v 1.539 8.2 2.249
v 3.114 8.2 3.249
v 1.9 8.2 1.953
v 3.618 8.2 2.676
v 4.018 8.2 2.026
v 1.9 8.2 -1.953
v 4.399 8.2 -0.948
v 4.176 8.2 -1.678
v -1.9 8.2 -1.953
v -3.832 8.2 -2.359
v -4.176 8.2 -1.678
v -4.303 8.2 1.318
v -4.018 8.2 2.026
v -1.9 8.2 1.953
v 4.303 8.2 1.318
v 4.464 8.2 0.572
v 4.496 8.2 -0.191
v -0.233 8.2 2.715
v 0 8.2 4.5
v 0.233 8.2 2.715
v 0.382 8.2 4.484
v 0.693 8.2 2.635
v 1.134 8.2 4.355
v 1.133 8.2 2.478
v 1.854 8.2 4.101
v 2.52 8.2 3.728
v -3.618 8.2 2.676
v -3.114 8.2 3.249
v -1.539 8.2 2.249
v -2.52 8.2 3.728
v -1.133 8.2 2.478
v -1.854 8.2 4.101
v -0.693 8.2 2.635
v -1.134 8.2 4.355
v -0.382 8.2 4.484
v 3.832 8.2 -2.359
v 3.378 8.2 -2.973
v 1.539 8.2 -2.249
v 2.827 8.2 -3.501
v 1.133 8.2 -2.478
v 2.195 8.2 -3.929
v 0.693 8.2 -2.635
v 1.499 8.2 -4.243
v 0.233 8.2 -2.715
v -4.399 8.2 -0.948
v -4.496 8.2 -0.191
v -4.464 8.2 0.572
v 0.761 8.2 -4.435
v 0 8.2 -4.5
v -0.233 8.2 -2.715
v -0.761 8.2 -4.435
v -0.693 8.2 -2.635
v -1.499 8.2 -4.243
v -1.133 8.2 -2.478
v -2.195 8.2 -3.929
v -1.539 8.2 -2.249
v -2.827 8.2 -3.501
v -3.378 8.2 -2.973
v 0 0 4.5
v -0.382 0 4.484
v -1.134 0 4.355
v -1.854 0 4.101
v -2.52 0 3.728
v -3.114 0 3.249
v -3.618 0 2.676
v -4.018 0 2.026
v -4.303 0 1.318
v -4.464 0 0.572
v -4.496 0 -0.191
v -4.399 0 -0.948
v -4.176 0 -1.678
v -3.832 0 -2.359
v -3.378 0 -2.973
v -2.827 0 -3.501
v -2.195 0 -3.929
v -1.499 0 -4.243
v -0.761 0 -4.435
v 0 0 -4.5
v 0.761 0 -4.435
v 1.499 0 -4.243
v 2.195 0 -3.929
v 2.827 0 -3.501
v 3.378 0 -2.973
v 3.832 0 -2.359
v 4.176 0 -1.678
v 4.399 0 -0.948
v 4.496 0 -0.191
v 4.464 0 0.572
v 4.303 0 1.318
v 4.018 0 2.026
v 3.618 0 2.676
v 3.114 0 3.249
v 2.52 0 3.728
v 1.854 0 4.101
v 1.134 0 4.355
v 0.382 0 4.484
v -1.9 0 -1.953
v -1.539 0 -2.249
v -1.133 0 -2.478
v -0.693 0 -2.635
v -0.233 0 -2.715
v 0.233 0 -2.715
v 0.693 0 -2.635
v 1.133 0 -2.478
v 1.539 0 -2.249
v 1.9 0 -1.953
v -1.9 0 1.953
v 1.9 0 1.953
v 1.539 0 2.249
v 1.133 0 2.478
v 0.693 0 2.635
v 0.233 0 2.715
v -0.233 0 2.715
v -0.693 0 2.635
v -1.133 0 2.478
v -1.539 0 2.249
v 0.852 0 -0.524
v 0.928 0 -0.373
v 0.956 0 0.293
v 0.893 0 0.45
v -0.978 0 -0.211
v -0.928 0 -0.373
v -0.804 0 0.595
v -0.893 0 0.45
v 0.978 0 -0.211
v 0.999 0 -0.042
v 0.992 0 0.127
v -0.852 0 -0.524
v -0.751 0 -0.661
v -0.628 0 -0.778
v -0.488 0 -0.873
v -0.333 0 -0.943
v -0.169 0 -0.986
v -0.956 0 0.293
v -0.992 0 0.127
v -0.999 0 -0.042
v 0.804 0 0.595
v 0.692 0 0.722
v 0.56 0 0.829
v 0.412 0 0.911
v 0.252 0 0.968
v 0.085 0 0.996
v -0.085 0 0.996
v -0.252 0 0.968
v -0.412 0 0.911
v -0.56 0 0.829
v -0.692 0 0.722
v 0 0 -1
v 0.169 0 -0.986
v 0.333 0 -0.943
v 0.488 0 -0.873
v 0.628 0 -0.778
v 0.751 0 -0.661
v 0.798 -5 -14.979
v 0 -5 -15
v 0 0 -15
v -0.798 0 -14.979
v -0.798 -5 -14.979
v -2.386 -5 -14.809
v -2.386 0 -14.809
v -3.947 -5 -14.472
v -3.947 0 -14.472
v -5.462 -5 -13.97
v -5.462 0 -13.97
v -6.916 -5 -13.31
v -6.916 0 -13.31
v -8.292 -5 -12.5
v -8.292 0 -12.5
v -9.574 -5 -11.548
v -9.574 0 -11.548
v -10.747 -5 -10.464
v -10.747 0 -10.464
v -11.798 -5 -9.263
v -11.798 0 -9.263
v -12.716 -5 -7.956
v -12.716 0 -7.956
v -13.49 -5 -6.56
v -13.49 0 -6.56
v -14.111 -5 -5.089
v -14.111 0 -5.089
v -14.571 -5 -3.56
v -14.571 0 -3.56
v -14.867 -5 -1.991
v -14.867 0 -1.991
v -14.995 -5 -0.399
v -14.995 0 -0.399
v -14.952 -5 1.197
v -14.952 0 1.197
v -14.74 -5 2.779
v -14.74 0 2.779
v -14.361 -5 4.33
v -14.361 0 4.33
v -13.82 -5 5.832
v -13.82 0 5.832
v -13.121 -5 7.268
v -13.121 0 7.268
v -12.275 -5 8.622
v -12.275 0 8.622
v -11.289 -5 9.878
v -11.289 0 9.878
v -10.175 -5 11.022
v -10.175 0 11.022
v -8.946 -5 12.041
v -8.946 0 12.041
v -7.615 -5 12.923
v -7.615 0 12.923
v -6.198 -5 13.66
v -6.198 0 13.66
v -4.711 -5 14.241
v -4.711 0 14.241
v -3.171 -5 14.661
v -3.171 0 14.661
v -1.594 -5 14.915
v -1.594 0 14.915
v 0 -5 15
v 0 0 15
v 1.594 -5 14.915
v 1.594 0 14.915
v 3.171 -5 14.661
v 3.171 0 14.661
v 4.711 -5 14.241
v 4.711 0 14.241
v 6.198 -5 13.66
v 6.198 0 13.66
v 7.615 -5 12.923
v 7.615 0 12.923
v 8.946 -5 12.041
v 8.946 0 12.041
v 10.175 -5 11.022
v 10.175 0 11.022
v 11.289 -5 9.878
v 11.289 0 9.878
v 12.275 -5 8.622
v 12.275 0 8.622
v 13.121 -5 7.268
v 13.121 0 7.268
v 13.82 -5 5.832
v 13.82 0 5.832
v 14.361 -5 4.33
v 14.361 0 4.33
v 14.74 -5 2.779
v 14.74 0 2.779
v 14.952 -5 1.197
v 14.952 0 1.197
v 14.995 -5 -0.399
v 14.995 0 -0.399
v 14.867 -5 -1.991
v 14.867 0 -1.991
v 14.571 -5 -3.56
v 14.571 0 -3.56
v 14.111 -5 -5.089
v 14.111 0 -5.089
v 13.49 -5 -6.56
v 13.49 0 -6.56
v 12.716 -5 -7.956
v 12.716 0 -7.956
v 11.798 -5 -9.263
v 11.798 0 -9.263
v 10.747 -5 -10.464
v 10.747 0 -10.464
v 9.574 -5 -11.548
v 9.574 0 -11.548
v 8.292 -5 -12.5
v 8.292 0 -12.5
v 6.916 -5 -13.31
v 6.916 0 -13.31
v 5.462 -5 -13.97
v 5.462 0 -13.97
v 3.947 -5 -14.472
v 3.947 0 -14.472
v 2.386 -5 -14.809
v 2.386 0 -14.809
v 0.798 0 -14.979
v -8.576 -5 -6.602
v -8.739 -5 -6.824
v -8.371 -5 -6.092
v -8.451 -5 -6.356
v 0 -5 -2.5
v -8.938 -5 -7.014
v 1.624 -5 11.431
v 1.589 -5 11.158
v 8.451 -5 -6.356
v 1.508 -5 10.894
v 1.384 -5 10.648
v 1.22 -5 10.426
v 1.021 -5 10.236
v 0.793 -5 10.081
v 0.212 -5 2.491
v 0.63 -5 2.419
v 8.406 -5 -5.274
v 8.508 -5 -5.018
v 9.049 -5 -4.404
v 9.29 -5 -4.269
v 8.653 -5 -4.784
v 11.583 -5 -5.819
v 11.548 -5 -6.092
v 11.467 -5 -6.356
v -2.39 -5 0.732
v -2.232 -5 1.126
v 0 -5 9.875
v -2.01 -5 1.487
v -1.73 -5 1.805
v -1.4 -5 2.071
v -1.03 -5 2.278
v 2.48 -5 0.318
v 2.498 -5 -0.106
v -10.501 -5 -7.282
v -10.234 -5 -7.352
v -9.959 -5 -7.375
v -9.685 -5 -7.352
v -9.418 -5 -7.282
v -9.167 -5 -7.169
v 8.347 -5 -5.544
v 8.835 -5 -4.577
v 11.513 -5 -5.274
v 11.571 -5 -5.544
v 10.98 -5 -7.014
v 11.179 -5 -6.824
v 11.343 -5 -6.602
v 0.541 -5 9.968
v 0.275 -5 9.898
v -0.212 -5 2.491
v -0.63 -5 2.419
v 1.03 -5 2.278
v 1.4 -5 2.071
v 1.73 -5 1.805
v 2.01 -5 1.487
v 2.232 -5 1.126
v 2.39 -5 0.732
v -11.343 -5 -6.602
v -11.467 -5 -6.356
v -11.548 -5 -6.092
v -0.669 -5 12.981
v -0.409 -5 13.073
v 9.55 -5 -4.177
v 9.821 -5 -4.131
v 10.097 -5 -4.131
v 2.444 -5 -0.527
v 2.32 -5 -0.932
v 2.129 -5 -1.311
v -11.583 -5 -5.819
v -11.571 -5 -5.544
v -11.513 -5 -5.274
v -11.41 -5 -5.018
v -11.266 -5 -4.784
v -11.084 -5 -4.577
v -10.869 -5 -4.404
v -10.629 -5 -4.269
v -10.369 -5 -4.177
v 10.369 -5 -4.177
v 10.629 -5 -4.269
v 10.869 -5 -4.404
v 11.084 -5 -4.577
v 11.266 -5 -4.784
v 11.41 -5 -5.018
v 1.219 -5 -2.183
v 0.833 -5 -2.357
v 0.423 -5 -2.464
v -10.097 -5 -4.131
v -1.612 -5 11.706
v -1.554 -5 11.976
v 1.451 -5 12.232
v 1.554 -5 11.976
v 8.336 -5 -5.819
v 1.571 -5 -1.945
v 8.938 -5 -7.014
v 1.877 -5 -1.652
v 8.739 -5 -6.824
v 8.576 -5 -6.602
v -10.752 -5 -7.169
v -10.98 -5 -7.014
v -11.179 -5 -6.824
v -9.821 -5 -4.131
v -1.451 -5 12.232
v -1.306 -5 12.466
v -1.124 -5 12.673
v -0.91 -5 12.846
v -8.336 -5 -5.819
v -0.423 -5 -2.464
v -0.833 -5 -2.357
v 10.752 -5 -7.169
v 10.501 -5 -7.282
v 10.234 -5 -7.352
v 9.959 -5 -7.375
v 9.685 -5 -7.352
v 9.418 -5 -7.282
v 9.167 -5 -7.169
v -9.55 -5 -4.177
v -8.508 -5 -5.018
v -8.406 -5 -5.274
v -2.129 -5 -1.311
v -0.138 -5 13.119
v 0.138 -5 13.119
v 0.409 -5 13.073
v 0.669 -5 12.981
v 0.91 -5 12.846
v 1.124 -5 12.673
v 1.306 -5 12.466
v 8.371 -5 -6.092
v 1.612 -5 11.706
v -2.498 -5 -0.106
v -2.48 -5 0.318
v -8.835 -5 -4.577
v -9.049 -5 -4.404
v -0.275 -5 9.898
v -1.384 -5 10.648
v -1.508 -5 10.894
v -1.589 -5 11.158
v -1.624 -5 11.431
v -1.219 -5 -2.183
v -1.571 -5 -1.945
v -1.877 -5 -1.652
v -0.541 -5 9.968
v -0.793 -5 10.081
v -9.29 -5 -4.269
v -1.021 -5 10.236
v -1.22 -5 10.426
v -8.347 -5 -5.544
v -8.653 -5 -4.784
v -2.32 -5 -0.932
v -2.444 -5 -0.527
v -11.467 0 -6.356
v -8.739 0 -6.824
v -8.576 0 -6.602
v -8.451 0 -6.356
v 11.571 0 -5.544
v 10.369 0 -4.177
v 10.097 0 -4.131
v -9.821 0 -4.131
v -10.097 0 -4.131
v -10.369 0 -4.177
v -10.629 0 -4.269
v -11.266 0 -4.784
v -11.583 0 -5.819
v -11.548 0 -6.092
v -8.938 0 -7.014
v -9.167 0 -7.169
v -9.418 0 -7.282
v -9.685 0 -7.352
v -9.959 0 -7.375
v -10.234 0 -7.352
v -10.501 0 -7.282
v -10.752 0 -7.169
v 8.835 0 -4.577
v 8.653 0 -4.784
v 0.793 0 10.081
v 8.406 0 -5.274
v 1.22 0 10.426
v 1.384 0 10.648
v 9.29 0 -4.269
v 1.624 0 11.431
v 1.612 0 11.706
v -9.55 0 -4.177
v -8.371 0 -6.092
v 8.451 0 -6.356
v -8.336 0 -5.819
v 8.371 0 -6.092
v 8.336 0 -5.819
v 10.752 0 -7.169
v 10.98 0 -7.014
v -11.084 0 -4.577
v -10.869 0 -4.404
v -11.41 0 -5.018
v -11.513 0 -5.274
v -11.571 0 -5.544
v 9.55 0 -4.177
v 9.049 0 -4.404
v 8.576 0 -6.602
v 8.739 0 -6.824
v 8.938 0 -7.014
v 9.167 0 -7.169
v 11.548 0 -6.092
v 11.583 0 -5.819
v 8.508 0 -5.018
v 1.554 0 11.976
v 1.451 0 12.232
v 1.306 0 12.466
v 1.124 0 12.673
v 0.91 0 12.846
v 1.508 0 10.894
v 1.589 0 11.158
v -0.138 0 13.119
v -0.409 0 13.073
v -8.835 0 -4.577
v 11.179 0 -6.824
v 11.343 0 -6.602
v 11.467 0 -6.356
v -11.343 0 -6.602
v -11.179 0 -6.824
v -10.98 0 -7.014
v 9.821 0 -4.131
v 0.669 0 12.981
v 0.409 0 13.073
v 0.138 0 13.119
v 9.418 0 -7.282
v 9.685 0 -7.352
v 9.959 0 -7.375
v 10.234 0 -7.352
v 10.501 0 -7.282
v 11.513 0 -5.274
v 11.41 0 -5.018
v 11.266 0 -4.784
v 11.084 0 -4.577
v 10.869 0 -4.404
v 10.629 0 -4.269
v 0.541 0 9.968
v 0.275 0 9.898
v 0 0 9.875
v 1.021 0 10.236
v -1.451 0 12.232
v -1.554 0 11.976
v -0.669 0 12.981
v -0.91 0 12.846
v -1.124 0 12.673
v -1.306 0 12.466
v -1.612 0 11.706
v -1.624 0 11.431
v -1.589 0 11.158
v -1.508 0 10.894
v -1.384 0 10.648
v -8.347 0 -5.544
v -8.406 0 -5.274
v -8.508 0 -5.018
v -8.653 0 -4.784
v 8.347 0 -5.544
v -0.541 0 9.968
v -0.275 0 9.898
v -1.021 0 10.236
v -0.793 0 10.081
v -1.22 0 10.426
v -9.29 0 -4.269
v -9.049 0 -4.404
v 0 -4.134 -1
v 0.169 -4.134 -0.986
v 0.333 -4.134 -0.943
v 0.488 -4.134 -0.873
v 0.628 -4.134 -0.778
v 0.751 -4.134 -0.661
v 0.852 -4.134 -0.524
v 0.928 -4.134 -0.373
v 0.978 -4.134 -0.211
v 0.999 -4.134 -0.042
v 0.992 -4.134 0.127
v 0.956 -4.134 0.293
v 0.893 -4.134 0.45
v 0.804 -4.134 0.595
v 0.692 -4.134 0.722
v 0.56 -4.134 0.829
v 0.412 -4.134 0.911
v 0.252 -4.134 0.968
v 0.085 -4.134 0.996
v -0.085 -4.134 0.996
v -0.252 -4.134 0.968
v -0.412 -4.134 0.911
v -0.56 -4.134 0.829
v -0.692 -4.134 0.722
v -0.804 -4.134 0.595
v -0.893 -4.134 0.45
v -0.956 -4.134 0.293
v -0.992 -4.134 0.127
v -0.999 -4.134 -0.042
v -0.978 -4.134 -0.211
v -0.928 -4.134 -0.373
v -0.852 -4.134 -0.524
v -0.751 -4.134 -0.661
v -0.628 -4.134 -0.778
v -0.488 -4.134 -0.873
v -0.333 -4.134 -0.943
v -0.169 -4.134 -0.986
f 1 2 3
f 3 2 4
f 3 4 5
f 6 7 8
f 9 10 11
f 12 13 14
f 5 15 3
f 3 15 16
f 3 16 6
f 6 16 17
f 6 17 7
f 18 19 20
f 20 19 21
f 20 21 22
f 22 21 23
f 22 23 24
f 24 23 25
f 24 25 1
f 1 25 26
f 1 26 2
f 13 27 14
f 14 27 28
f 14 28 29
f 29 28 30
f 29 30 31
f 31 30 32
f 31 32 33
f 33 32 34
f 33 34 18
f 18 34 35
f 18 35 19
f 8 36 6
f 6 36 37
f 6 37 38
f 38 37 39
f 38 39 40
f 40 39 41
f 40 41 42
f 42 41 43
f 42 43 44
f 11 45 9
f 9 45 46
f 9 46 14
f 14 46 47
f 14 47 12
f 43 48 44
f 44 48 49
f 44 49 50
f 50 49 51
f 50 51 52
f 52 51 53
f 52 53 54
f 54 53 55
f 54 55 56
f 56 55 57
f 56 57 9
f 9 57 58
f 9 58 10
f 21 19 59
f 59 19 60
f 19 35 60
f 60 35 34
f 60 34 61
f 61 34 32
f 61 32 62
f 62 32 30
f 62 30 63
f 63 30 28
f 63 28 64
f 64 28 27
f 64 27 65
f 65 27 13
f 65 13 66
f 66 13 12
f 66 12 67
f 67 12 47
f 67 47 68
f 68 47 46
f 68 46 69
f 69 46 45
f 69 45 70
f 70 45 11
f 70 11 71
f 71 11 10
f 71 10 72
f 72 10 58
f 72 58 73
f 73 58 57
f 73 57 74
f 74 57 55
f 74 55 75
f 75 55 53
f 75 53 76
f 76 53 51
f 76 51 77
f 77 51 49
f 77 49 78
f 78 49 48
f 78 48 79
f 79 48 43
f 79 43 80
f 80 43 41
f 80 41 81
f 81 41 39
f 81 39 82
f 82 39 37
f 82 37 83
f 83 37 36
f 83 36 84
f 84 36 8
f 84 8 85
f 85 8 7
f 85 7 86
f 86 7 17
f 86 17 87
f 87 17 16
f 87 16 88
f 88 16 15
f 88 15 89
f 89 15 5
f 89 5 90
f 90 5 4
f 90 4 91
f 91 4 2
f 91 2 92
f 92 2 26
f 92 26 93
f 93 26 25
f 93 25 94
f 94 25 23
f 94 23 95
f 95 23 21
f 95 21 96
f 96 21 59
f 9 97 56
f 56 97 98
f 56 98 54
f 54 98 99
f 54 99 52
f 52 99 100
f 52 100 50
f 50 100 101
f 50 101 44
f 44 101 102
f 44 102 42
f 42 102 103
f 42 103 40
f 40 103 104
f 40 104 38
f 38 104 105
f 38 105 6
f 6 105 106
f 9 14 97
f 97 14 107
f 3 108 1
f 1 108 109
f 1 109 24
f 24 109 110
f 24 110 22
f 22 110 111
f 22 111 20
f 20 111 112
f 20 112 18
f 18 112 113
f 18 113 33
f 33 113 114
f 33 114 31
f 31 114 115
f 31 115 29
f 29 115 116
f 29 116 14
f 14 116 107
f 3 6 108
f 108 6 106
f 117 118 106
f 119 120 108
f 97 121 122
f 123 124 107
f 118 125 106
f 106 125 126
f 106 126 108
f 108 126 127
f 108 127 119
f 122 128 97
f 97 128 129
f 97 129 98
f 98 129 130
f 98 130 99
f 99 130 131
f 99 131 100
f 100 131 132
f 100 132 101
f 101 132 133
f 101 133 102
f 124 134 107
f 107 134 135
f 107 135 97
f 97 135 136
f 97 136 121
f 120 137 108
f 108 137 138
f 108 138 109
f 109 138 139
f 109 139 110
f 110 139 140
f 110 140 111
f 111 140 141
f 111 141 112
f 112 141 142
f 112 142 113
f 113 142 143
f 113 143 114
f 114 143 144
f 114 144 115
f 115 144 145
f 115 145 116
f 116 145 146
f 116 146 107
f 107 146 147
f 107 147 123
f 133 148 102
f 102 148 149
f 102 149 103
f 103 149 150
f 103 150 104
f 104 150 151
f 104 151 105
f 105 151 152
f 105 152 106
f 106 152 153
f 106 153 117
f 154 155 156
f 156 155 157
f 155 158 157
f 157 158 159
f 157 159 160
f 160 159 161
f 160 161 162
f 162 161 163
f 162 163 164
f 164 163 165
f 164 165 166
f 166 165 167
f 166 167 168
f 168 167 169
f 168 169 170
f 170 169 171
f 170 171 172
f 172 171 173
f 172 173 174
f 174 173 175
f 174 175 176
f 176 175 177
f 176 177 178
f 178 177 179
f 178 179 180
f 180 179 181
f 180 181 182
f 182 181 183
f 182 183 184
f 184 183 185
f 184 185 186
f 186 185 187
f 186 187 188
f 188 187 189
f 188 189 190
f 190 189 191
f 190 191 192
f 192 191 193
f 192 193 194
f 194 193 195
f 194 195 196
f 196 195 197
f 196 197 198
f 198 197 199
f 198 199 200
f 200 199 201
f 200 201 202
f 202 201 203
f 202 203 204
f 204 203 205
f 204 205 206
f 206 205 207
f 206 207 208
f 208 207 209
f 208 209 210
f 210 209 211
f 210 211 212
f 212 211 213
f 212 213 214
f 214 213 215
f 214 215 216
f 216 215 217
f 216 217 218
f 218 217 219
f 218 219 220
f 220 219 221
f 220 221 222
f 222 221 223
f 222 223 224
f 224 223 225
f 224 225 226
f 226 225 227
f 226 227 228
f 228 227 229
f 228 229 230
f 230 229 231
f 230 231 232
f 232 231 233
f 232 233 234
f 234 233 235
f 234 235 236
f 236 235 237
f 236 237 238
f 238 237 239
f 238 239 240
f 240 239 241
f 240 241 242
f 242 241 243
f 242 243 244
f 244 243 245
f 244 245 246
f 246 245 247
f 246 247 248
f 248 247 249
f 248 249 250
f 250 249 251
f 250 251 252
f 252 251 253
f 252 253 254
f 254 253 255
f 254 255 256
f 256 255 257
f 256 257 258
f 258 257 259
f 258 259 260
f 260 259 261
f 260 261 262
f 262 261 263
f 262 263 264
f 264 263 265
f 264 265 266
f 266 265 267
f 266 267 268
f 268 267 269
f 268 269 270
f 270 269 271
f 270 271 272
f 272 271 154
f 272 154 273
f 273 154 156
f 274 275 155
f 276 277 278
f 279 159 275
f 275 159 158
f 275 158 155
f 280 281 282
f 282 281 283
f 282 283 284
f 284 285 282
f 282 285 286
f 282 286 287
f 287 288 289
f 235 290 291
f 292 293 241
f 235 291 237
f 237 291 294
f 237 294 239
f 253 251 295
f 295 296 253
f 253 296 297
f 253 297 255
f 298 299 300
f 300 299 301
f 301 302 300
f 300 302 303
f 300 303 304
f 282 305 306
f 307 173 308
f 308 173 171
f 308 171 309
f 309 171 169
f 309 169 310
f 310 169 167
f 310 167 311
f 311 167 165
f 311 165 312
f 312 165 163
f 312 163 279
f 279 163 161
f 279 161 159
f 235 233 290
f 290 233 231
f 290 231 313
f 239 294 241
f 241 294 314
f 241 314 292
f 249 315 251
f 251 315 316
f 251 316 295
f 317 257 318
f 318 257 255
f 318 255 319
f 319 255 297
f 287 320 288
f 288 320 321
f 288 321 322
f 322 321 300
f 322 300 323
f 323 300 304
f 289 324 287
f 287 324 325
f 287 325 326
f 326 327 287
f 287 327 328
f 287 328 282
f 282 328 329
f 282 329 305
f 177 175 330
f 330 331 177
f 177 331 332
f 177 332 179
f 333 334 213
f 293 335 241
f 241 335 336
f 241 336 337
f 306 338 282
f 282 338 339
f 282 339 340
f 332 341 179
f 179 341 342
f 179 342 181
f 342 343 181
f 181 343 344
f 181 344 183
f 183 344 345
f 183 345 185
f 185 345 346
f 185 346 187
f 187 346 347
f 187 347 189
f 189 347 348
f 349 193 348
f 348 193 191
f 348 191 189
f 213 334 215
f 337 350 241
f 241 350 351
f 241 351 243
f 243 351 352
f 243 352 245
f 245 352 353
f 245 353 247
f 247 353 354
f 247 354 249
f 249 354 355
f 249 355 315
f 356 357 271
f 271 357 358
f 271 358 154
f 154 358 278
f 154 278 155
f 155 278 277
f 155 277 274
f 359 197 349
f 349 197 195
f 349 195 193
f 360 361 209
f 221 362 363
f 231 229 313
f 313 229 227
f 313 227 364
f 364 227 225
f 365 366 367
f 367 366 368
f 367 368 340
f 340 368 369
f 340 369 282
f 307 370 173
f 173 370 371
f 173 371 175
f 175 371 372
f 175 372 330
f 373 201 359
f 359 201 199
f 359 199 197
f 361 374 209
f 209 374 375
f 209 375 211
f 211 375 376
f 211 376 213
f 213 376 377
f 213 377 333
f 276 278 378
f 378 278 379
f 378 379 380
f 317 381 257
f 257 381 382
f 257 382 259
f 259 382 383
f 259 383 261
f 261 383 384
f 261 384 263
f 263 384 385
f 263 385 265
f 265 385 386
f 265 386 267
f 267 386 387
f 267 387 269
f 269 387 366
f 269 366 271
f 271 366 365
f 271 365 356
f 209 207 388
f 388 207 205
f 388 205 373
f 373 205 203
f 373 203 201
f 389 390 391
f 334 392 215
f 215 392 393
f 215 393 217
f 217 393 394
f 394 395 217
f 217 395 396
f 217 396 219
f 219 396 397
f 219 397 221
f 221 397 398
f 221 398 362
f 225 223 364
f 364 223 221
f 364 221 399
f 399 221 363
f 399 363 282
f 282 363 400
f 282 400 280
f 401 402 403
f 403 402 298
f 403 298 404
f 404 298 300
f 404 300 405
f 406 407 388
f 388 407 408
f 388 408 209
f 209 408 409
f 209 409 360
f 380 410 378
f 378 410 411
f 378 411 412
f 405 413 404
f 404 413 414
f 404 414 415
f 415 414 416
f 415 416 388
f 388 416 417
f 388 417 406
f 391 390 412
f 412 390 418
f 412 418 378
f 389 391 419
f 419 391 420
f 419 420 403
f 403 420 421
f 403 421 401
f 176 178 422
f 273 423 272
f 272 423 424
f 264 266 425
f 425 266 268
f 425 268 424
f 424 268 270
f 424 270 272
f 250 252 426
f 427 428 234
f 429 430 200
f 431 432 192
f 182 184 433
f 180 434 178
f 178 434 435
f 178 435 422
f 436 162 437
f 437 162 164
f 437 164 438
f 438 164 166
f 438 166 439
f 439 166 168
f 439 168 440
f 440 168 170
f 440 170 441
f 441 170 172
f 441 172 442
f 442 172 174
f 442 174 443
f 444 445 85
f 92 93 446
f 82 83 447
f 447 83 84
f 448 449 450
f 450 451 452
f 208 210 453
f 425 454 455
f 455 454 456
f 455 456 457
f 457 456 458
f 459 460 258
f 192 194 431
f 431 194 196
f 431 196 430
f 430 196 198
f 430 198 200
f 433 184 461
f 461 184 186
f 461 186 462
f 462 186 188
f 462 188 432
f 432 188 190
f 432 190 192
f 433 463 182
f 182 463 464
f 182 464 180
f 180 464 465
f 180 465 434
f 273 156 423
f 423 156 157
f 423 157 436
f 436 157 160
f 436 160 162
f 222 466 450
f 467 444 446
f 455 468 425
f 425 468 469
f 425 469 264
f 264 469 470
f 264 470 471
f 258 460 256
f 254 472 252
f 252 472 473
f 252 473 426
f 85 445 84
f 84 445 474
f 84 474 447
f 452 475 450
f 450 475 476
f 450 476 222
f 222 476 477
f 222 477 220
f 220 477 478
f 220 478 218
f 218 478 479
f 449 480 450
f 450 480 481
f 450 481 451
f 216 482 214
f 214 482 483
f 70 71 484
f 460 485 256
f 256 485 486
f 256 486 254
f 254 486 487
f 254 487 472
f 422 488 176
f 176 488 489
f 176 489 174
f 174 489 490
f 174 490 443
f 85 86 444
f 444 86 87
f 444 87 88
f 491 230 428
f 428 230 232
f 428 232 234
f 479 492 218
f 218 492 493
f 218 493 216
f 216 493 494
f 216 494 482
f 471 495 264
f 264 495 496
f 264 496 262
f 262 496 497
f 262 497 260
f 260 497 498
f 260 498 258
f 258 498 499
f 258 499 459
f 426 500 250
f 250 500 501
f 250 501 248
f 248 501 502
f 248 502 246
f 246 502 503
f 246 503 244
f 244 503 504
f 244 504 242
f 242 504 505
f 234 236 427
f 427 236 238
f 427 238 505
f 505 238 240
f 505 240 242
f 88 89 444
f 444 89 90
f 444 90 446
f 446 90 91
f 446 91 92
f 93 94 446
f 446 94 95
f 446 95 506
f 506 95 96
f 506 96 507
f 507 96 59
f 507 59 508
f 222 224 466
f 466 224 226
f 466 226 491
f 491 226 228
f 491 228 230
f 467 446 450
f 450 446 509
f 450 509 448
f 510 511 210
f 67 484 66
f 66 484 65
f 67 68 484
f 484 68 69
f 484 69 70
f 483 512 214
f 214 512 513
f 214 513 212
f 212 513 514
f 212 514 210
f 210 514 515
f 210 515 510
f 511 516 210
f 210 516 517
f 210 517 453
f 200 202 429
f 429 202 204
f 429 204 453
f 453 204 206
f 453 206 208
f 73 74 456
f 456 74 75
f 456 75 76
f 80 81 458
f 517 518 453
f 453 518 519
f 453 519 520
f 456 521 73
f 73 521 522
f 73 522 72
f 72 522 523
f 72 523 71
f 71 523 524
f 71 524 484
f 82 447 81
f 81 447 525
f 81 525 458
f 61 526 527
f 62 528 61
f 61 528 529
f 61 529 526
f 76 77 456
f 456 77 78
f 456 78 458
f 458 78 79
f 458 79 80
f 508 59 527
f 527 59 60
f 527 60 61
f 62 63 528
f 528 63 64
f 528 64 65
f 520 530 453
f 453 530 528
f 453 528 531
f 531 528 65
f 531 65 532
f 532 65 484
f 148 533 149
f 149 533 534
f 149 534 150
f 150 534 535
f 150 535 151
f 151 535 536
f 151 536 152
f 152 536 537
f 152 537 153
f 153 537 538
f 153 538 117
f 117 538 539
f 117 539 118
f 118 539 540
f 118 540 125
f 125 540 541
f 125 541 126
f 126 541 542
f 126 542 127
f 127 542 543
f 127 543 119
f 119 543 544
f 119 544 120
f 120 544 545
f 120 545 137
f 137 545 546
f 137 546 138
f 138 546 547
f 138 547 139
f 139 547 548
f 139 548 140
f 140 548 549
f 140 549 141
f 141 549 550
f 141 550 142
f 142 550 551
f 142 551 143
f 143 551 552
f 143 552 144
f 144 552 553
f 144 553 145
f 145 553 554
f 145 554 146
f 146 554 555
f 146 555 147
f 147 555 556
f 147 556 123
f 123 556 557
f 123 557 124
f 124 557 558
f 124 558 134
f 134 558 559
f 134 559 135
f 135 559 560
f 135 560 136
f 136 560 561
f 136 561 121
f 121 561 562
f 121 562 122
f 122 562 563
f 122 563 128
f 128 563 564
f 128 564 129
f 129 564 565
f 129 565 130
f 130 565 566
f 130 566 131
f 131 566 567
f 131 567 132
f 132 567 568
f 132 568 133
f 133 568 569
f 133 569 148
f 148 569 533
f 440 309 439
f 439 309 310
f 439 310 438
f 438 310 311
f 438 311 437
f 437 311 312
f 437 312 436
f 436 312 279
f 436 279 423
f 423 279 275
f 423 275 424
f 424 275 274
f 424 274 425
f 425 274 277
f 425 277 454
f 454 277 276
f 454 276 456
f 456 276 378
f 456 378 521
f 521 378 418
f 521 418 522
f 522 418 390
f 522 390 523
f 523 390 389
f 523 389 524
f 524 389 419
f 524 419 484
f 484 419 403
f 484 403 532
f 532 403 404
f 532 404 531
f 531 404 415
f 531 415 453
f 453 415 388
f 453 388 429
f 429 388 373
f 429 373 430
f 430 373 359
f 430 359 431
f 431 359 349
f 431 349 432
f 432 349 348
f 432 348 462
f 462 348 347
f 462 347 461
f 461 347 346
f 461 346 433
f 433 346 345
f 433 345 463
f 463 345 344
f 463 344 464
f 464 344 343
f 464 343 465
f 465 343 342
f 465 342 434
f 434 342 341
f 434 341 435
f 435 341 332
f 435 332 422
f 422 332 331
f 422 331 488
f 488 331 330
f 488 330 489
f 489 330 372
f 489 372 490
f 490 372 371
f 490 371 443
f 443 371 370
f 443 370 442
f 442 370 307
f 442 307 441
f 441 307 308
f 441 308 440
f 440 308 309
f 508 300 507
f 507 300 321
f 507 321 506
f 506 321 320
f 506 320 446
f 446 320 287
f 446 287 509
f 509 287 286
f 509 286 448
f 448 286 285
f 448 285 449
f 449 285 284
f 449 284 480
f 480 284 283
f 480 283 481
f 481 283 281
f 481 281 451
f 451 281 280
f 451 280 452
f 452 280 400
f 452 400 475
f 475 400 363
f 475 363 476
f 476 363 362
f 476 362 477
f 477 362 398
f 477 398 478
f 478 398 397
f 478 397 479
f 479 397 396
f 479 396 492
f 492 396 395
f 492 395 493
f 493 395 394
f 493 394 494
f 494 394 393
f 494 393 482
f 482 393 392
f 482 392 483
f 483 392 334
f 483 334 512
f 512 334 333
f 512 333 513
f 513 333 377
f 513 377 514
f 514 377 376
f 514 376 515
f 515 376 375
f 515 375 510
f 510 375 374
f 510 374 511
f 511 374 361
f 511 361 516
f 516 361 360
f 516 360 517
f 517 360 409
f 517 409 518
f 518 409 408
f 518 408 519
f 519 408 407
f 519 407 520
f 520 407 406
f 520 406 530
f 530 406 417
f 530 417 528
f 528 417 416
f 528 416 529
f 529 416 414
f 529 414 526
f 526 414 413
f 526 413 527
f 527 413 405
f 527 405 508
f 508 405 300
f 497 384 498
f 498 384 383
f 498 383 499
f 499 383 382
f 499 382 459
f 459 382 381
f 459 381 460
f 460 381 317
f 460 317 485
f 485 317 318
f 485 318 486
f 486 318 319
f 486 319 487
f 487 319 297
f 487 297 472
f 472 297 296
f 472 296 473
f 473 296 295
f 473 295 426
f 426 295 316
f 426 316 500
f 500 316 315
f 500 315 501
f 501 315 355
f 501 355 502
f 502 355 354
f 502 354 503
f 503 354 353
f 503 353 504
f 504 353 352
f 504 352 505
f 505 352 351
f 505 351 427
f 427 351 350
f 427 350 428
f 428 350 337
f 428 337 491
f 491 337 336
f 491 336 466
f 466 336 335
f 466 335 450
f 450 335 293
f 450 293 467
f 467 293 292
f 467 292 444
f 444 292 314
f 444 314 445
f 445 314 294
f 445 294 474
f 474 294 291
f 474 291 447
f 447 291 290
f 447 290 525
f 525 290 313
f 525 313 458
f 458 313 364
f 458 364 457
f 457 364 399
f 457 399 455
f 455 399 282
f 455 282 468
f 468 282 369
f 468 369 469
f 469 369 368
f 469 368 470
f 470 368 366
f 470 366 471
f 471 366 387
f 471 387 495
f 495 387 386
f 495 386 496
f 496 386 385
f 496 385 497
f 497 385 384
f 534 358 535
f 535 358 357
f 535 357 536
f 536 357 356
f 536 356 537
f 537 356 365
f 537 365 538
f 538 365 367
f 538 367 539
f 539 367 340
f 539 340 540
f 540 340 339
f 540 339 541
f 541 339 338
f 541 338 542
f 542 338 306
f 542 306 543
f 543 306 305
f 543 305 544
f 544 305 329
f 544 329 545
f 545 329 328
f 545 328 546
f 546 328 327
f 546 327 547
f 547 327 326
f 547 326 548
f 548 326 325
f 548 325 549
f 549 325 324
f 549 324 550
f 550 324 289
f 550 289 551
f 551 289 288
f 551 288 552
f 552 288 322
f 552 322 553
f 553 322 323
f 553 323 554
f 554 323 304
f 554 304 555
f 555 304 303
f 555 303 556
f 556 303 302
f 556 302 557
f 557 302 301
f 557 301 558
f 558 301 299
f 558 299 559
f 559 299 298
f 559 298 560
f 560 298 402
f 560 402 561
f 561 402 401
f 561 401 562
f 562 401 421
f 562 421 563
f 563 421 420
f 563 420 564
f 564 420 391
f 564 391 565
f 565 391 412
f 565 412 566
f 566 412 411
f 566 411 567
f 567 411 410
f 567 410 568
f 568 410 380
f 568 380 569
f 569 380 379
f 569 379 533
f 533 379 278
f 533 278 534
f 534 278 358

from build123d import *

# Parameters (mm, degrees)
SKETCH1_R           = 4.5
BOSS_EXTRUDE1_DEPTH = 8.2
SKETCH2_R           = 15
BOSS_EXTRUDE2_DEPTH = 5
SKETCH3_R           = 1
CUT_EXTRUDE1_DEPTH  = 25.984795376
SKETCH4_R           = 1.625
CUT_EXTRUDE2_DEPTH  = 25.984795376
CHAMFER1_SIZE       = 1.5
CHAMFER1_SIZE2      = 0.866025404


with BuildPart() as part:
    # Sketch1 → Boss-Extrude1 (new body)
    with BuildSketch(Plane(origin=(0, 0, 0), x_dir=(1, 0, 0), z_dir=(0, 1, 0))):
        Circle(SKETCH1_R)
        with BuildLine():
            Line((-1.9, 1.953362486), (-1.9, -1.953362486))
            ThreePointArc((-1.9, -1.953362486), (0, -2.725), (1.9, -1.953362486))
            Line((1.9, -1.953362486), (1.9, 1.953362486))
            ThreePointArc((1.9, 1.953362486), (0, 2.725), (-1.9, 1.953362486))
        make_face(mode=Mode.SUBTRACT)
    extrude(amount=BOSS_EXTRUDE1_DEPTH)

    # Sketch2 → Boss-Extrude2 (add)
    with BuildSketch(Plane.XZ):
        Circle(SKETCH2_R)
    extrude(amount=BOSS_EXTRUDE2_DEPTH)

    # Sketch3 → Cut-Extrude1 (cut, through all)
    with BuildSketch(Plane.XZ.offset(5)):
        Circle(SKETCH3_R)
    extrude(amount=-CUT_EXTRUDE1_DEPTH, mode=Mode.SUBTRACT)

    # Sketch4 → Cut-Extrude2 (cut, through all)
    with BuildSketch(Plane.XZ.offset(5)):
        with Locations((0, 11.5)):
            Circle(SKETCH4_R)
        with Locations((9.959292144, -5.75)):
            Circle(SKETCH4_R)
        with Locations((-9.959292144, -5.75)):
            Circle(SKETCH4_R)
    extrude(amount=-CUT_EXTRUDE2_DEPTH, mode=Mode.SUBTRACT)

    # Chamfer1
    chamfer1_edges = [part.edges().sort_by_distance(p)[0] for p in [
        (-1, -5, 0),
    ]]
    chamfer1_side = [part.faces().sort_by_distance(p)[0] for p in [
        (-14.575735931, -5, 0),
    ]]
    chamfer(chamfer1_edges, length=CHAMFER1_SIZE, length2=CHAMFER1_SIZE2, reference=chamfer1_side[0])


solid = part.part
